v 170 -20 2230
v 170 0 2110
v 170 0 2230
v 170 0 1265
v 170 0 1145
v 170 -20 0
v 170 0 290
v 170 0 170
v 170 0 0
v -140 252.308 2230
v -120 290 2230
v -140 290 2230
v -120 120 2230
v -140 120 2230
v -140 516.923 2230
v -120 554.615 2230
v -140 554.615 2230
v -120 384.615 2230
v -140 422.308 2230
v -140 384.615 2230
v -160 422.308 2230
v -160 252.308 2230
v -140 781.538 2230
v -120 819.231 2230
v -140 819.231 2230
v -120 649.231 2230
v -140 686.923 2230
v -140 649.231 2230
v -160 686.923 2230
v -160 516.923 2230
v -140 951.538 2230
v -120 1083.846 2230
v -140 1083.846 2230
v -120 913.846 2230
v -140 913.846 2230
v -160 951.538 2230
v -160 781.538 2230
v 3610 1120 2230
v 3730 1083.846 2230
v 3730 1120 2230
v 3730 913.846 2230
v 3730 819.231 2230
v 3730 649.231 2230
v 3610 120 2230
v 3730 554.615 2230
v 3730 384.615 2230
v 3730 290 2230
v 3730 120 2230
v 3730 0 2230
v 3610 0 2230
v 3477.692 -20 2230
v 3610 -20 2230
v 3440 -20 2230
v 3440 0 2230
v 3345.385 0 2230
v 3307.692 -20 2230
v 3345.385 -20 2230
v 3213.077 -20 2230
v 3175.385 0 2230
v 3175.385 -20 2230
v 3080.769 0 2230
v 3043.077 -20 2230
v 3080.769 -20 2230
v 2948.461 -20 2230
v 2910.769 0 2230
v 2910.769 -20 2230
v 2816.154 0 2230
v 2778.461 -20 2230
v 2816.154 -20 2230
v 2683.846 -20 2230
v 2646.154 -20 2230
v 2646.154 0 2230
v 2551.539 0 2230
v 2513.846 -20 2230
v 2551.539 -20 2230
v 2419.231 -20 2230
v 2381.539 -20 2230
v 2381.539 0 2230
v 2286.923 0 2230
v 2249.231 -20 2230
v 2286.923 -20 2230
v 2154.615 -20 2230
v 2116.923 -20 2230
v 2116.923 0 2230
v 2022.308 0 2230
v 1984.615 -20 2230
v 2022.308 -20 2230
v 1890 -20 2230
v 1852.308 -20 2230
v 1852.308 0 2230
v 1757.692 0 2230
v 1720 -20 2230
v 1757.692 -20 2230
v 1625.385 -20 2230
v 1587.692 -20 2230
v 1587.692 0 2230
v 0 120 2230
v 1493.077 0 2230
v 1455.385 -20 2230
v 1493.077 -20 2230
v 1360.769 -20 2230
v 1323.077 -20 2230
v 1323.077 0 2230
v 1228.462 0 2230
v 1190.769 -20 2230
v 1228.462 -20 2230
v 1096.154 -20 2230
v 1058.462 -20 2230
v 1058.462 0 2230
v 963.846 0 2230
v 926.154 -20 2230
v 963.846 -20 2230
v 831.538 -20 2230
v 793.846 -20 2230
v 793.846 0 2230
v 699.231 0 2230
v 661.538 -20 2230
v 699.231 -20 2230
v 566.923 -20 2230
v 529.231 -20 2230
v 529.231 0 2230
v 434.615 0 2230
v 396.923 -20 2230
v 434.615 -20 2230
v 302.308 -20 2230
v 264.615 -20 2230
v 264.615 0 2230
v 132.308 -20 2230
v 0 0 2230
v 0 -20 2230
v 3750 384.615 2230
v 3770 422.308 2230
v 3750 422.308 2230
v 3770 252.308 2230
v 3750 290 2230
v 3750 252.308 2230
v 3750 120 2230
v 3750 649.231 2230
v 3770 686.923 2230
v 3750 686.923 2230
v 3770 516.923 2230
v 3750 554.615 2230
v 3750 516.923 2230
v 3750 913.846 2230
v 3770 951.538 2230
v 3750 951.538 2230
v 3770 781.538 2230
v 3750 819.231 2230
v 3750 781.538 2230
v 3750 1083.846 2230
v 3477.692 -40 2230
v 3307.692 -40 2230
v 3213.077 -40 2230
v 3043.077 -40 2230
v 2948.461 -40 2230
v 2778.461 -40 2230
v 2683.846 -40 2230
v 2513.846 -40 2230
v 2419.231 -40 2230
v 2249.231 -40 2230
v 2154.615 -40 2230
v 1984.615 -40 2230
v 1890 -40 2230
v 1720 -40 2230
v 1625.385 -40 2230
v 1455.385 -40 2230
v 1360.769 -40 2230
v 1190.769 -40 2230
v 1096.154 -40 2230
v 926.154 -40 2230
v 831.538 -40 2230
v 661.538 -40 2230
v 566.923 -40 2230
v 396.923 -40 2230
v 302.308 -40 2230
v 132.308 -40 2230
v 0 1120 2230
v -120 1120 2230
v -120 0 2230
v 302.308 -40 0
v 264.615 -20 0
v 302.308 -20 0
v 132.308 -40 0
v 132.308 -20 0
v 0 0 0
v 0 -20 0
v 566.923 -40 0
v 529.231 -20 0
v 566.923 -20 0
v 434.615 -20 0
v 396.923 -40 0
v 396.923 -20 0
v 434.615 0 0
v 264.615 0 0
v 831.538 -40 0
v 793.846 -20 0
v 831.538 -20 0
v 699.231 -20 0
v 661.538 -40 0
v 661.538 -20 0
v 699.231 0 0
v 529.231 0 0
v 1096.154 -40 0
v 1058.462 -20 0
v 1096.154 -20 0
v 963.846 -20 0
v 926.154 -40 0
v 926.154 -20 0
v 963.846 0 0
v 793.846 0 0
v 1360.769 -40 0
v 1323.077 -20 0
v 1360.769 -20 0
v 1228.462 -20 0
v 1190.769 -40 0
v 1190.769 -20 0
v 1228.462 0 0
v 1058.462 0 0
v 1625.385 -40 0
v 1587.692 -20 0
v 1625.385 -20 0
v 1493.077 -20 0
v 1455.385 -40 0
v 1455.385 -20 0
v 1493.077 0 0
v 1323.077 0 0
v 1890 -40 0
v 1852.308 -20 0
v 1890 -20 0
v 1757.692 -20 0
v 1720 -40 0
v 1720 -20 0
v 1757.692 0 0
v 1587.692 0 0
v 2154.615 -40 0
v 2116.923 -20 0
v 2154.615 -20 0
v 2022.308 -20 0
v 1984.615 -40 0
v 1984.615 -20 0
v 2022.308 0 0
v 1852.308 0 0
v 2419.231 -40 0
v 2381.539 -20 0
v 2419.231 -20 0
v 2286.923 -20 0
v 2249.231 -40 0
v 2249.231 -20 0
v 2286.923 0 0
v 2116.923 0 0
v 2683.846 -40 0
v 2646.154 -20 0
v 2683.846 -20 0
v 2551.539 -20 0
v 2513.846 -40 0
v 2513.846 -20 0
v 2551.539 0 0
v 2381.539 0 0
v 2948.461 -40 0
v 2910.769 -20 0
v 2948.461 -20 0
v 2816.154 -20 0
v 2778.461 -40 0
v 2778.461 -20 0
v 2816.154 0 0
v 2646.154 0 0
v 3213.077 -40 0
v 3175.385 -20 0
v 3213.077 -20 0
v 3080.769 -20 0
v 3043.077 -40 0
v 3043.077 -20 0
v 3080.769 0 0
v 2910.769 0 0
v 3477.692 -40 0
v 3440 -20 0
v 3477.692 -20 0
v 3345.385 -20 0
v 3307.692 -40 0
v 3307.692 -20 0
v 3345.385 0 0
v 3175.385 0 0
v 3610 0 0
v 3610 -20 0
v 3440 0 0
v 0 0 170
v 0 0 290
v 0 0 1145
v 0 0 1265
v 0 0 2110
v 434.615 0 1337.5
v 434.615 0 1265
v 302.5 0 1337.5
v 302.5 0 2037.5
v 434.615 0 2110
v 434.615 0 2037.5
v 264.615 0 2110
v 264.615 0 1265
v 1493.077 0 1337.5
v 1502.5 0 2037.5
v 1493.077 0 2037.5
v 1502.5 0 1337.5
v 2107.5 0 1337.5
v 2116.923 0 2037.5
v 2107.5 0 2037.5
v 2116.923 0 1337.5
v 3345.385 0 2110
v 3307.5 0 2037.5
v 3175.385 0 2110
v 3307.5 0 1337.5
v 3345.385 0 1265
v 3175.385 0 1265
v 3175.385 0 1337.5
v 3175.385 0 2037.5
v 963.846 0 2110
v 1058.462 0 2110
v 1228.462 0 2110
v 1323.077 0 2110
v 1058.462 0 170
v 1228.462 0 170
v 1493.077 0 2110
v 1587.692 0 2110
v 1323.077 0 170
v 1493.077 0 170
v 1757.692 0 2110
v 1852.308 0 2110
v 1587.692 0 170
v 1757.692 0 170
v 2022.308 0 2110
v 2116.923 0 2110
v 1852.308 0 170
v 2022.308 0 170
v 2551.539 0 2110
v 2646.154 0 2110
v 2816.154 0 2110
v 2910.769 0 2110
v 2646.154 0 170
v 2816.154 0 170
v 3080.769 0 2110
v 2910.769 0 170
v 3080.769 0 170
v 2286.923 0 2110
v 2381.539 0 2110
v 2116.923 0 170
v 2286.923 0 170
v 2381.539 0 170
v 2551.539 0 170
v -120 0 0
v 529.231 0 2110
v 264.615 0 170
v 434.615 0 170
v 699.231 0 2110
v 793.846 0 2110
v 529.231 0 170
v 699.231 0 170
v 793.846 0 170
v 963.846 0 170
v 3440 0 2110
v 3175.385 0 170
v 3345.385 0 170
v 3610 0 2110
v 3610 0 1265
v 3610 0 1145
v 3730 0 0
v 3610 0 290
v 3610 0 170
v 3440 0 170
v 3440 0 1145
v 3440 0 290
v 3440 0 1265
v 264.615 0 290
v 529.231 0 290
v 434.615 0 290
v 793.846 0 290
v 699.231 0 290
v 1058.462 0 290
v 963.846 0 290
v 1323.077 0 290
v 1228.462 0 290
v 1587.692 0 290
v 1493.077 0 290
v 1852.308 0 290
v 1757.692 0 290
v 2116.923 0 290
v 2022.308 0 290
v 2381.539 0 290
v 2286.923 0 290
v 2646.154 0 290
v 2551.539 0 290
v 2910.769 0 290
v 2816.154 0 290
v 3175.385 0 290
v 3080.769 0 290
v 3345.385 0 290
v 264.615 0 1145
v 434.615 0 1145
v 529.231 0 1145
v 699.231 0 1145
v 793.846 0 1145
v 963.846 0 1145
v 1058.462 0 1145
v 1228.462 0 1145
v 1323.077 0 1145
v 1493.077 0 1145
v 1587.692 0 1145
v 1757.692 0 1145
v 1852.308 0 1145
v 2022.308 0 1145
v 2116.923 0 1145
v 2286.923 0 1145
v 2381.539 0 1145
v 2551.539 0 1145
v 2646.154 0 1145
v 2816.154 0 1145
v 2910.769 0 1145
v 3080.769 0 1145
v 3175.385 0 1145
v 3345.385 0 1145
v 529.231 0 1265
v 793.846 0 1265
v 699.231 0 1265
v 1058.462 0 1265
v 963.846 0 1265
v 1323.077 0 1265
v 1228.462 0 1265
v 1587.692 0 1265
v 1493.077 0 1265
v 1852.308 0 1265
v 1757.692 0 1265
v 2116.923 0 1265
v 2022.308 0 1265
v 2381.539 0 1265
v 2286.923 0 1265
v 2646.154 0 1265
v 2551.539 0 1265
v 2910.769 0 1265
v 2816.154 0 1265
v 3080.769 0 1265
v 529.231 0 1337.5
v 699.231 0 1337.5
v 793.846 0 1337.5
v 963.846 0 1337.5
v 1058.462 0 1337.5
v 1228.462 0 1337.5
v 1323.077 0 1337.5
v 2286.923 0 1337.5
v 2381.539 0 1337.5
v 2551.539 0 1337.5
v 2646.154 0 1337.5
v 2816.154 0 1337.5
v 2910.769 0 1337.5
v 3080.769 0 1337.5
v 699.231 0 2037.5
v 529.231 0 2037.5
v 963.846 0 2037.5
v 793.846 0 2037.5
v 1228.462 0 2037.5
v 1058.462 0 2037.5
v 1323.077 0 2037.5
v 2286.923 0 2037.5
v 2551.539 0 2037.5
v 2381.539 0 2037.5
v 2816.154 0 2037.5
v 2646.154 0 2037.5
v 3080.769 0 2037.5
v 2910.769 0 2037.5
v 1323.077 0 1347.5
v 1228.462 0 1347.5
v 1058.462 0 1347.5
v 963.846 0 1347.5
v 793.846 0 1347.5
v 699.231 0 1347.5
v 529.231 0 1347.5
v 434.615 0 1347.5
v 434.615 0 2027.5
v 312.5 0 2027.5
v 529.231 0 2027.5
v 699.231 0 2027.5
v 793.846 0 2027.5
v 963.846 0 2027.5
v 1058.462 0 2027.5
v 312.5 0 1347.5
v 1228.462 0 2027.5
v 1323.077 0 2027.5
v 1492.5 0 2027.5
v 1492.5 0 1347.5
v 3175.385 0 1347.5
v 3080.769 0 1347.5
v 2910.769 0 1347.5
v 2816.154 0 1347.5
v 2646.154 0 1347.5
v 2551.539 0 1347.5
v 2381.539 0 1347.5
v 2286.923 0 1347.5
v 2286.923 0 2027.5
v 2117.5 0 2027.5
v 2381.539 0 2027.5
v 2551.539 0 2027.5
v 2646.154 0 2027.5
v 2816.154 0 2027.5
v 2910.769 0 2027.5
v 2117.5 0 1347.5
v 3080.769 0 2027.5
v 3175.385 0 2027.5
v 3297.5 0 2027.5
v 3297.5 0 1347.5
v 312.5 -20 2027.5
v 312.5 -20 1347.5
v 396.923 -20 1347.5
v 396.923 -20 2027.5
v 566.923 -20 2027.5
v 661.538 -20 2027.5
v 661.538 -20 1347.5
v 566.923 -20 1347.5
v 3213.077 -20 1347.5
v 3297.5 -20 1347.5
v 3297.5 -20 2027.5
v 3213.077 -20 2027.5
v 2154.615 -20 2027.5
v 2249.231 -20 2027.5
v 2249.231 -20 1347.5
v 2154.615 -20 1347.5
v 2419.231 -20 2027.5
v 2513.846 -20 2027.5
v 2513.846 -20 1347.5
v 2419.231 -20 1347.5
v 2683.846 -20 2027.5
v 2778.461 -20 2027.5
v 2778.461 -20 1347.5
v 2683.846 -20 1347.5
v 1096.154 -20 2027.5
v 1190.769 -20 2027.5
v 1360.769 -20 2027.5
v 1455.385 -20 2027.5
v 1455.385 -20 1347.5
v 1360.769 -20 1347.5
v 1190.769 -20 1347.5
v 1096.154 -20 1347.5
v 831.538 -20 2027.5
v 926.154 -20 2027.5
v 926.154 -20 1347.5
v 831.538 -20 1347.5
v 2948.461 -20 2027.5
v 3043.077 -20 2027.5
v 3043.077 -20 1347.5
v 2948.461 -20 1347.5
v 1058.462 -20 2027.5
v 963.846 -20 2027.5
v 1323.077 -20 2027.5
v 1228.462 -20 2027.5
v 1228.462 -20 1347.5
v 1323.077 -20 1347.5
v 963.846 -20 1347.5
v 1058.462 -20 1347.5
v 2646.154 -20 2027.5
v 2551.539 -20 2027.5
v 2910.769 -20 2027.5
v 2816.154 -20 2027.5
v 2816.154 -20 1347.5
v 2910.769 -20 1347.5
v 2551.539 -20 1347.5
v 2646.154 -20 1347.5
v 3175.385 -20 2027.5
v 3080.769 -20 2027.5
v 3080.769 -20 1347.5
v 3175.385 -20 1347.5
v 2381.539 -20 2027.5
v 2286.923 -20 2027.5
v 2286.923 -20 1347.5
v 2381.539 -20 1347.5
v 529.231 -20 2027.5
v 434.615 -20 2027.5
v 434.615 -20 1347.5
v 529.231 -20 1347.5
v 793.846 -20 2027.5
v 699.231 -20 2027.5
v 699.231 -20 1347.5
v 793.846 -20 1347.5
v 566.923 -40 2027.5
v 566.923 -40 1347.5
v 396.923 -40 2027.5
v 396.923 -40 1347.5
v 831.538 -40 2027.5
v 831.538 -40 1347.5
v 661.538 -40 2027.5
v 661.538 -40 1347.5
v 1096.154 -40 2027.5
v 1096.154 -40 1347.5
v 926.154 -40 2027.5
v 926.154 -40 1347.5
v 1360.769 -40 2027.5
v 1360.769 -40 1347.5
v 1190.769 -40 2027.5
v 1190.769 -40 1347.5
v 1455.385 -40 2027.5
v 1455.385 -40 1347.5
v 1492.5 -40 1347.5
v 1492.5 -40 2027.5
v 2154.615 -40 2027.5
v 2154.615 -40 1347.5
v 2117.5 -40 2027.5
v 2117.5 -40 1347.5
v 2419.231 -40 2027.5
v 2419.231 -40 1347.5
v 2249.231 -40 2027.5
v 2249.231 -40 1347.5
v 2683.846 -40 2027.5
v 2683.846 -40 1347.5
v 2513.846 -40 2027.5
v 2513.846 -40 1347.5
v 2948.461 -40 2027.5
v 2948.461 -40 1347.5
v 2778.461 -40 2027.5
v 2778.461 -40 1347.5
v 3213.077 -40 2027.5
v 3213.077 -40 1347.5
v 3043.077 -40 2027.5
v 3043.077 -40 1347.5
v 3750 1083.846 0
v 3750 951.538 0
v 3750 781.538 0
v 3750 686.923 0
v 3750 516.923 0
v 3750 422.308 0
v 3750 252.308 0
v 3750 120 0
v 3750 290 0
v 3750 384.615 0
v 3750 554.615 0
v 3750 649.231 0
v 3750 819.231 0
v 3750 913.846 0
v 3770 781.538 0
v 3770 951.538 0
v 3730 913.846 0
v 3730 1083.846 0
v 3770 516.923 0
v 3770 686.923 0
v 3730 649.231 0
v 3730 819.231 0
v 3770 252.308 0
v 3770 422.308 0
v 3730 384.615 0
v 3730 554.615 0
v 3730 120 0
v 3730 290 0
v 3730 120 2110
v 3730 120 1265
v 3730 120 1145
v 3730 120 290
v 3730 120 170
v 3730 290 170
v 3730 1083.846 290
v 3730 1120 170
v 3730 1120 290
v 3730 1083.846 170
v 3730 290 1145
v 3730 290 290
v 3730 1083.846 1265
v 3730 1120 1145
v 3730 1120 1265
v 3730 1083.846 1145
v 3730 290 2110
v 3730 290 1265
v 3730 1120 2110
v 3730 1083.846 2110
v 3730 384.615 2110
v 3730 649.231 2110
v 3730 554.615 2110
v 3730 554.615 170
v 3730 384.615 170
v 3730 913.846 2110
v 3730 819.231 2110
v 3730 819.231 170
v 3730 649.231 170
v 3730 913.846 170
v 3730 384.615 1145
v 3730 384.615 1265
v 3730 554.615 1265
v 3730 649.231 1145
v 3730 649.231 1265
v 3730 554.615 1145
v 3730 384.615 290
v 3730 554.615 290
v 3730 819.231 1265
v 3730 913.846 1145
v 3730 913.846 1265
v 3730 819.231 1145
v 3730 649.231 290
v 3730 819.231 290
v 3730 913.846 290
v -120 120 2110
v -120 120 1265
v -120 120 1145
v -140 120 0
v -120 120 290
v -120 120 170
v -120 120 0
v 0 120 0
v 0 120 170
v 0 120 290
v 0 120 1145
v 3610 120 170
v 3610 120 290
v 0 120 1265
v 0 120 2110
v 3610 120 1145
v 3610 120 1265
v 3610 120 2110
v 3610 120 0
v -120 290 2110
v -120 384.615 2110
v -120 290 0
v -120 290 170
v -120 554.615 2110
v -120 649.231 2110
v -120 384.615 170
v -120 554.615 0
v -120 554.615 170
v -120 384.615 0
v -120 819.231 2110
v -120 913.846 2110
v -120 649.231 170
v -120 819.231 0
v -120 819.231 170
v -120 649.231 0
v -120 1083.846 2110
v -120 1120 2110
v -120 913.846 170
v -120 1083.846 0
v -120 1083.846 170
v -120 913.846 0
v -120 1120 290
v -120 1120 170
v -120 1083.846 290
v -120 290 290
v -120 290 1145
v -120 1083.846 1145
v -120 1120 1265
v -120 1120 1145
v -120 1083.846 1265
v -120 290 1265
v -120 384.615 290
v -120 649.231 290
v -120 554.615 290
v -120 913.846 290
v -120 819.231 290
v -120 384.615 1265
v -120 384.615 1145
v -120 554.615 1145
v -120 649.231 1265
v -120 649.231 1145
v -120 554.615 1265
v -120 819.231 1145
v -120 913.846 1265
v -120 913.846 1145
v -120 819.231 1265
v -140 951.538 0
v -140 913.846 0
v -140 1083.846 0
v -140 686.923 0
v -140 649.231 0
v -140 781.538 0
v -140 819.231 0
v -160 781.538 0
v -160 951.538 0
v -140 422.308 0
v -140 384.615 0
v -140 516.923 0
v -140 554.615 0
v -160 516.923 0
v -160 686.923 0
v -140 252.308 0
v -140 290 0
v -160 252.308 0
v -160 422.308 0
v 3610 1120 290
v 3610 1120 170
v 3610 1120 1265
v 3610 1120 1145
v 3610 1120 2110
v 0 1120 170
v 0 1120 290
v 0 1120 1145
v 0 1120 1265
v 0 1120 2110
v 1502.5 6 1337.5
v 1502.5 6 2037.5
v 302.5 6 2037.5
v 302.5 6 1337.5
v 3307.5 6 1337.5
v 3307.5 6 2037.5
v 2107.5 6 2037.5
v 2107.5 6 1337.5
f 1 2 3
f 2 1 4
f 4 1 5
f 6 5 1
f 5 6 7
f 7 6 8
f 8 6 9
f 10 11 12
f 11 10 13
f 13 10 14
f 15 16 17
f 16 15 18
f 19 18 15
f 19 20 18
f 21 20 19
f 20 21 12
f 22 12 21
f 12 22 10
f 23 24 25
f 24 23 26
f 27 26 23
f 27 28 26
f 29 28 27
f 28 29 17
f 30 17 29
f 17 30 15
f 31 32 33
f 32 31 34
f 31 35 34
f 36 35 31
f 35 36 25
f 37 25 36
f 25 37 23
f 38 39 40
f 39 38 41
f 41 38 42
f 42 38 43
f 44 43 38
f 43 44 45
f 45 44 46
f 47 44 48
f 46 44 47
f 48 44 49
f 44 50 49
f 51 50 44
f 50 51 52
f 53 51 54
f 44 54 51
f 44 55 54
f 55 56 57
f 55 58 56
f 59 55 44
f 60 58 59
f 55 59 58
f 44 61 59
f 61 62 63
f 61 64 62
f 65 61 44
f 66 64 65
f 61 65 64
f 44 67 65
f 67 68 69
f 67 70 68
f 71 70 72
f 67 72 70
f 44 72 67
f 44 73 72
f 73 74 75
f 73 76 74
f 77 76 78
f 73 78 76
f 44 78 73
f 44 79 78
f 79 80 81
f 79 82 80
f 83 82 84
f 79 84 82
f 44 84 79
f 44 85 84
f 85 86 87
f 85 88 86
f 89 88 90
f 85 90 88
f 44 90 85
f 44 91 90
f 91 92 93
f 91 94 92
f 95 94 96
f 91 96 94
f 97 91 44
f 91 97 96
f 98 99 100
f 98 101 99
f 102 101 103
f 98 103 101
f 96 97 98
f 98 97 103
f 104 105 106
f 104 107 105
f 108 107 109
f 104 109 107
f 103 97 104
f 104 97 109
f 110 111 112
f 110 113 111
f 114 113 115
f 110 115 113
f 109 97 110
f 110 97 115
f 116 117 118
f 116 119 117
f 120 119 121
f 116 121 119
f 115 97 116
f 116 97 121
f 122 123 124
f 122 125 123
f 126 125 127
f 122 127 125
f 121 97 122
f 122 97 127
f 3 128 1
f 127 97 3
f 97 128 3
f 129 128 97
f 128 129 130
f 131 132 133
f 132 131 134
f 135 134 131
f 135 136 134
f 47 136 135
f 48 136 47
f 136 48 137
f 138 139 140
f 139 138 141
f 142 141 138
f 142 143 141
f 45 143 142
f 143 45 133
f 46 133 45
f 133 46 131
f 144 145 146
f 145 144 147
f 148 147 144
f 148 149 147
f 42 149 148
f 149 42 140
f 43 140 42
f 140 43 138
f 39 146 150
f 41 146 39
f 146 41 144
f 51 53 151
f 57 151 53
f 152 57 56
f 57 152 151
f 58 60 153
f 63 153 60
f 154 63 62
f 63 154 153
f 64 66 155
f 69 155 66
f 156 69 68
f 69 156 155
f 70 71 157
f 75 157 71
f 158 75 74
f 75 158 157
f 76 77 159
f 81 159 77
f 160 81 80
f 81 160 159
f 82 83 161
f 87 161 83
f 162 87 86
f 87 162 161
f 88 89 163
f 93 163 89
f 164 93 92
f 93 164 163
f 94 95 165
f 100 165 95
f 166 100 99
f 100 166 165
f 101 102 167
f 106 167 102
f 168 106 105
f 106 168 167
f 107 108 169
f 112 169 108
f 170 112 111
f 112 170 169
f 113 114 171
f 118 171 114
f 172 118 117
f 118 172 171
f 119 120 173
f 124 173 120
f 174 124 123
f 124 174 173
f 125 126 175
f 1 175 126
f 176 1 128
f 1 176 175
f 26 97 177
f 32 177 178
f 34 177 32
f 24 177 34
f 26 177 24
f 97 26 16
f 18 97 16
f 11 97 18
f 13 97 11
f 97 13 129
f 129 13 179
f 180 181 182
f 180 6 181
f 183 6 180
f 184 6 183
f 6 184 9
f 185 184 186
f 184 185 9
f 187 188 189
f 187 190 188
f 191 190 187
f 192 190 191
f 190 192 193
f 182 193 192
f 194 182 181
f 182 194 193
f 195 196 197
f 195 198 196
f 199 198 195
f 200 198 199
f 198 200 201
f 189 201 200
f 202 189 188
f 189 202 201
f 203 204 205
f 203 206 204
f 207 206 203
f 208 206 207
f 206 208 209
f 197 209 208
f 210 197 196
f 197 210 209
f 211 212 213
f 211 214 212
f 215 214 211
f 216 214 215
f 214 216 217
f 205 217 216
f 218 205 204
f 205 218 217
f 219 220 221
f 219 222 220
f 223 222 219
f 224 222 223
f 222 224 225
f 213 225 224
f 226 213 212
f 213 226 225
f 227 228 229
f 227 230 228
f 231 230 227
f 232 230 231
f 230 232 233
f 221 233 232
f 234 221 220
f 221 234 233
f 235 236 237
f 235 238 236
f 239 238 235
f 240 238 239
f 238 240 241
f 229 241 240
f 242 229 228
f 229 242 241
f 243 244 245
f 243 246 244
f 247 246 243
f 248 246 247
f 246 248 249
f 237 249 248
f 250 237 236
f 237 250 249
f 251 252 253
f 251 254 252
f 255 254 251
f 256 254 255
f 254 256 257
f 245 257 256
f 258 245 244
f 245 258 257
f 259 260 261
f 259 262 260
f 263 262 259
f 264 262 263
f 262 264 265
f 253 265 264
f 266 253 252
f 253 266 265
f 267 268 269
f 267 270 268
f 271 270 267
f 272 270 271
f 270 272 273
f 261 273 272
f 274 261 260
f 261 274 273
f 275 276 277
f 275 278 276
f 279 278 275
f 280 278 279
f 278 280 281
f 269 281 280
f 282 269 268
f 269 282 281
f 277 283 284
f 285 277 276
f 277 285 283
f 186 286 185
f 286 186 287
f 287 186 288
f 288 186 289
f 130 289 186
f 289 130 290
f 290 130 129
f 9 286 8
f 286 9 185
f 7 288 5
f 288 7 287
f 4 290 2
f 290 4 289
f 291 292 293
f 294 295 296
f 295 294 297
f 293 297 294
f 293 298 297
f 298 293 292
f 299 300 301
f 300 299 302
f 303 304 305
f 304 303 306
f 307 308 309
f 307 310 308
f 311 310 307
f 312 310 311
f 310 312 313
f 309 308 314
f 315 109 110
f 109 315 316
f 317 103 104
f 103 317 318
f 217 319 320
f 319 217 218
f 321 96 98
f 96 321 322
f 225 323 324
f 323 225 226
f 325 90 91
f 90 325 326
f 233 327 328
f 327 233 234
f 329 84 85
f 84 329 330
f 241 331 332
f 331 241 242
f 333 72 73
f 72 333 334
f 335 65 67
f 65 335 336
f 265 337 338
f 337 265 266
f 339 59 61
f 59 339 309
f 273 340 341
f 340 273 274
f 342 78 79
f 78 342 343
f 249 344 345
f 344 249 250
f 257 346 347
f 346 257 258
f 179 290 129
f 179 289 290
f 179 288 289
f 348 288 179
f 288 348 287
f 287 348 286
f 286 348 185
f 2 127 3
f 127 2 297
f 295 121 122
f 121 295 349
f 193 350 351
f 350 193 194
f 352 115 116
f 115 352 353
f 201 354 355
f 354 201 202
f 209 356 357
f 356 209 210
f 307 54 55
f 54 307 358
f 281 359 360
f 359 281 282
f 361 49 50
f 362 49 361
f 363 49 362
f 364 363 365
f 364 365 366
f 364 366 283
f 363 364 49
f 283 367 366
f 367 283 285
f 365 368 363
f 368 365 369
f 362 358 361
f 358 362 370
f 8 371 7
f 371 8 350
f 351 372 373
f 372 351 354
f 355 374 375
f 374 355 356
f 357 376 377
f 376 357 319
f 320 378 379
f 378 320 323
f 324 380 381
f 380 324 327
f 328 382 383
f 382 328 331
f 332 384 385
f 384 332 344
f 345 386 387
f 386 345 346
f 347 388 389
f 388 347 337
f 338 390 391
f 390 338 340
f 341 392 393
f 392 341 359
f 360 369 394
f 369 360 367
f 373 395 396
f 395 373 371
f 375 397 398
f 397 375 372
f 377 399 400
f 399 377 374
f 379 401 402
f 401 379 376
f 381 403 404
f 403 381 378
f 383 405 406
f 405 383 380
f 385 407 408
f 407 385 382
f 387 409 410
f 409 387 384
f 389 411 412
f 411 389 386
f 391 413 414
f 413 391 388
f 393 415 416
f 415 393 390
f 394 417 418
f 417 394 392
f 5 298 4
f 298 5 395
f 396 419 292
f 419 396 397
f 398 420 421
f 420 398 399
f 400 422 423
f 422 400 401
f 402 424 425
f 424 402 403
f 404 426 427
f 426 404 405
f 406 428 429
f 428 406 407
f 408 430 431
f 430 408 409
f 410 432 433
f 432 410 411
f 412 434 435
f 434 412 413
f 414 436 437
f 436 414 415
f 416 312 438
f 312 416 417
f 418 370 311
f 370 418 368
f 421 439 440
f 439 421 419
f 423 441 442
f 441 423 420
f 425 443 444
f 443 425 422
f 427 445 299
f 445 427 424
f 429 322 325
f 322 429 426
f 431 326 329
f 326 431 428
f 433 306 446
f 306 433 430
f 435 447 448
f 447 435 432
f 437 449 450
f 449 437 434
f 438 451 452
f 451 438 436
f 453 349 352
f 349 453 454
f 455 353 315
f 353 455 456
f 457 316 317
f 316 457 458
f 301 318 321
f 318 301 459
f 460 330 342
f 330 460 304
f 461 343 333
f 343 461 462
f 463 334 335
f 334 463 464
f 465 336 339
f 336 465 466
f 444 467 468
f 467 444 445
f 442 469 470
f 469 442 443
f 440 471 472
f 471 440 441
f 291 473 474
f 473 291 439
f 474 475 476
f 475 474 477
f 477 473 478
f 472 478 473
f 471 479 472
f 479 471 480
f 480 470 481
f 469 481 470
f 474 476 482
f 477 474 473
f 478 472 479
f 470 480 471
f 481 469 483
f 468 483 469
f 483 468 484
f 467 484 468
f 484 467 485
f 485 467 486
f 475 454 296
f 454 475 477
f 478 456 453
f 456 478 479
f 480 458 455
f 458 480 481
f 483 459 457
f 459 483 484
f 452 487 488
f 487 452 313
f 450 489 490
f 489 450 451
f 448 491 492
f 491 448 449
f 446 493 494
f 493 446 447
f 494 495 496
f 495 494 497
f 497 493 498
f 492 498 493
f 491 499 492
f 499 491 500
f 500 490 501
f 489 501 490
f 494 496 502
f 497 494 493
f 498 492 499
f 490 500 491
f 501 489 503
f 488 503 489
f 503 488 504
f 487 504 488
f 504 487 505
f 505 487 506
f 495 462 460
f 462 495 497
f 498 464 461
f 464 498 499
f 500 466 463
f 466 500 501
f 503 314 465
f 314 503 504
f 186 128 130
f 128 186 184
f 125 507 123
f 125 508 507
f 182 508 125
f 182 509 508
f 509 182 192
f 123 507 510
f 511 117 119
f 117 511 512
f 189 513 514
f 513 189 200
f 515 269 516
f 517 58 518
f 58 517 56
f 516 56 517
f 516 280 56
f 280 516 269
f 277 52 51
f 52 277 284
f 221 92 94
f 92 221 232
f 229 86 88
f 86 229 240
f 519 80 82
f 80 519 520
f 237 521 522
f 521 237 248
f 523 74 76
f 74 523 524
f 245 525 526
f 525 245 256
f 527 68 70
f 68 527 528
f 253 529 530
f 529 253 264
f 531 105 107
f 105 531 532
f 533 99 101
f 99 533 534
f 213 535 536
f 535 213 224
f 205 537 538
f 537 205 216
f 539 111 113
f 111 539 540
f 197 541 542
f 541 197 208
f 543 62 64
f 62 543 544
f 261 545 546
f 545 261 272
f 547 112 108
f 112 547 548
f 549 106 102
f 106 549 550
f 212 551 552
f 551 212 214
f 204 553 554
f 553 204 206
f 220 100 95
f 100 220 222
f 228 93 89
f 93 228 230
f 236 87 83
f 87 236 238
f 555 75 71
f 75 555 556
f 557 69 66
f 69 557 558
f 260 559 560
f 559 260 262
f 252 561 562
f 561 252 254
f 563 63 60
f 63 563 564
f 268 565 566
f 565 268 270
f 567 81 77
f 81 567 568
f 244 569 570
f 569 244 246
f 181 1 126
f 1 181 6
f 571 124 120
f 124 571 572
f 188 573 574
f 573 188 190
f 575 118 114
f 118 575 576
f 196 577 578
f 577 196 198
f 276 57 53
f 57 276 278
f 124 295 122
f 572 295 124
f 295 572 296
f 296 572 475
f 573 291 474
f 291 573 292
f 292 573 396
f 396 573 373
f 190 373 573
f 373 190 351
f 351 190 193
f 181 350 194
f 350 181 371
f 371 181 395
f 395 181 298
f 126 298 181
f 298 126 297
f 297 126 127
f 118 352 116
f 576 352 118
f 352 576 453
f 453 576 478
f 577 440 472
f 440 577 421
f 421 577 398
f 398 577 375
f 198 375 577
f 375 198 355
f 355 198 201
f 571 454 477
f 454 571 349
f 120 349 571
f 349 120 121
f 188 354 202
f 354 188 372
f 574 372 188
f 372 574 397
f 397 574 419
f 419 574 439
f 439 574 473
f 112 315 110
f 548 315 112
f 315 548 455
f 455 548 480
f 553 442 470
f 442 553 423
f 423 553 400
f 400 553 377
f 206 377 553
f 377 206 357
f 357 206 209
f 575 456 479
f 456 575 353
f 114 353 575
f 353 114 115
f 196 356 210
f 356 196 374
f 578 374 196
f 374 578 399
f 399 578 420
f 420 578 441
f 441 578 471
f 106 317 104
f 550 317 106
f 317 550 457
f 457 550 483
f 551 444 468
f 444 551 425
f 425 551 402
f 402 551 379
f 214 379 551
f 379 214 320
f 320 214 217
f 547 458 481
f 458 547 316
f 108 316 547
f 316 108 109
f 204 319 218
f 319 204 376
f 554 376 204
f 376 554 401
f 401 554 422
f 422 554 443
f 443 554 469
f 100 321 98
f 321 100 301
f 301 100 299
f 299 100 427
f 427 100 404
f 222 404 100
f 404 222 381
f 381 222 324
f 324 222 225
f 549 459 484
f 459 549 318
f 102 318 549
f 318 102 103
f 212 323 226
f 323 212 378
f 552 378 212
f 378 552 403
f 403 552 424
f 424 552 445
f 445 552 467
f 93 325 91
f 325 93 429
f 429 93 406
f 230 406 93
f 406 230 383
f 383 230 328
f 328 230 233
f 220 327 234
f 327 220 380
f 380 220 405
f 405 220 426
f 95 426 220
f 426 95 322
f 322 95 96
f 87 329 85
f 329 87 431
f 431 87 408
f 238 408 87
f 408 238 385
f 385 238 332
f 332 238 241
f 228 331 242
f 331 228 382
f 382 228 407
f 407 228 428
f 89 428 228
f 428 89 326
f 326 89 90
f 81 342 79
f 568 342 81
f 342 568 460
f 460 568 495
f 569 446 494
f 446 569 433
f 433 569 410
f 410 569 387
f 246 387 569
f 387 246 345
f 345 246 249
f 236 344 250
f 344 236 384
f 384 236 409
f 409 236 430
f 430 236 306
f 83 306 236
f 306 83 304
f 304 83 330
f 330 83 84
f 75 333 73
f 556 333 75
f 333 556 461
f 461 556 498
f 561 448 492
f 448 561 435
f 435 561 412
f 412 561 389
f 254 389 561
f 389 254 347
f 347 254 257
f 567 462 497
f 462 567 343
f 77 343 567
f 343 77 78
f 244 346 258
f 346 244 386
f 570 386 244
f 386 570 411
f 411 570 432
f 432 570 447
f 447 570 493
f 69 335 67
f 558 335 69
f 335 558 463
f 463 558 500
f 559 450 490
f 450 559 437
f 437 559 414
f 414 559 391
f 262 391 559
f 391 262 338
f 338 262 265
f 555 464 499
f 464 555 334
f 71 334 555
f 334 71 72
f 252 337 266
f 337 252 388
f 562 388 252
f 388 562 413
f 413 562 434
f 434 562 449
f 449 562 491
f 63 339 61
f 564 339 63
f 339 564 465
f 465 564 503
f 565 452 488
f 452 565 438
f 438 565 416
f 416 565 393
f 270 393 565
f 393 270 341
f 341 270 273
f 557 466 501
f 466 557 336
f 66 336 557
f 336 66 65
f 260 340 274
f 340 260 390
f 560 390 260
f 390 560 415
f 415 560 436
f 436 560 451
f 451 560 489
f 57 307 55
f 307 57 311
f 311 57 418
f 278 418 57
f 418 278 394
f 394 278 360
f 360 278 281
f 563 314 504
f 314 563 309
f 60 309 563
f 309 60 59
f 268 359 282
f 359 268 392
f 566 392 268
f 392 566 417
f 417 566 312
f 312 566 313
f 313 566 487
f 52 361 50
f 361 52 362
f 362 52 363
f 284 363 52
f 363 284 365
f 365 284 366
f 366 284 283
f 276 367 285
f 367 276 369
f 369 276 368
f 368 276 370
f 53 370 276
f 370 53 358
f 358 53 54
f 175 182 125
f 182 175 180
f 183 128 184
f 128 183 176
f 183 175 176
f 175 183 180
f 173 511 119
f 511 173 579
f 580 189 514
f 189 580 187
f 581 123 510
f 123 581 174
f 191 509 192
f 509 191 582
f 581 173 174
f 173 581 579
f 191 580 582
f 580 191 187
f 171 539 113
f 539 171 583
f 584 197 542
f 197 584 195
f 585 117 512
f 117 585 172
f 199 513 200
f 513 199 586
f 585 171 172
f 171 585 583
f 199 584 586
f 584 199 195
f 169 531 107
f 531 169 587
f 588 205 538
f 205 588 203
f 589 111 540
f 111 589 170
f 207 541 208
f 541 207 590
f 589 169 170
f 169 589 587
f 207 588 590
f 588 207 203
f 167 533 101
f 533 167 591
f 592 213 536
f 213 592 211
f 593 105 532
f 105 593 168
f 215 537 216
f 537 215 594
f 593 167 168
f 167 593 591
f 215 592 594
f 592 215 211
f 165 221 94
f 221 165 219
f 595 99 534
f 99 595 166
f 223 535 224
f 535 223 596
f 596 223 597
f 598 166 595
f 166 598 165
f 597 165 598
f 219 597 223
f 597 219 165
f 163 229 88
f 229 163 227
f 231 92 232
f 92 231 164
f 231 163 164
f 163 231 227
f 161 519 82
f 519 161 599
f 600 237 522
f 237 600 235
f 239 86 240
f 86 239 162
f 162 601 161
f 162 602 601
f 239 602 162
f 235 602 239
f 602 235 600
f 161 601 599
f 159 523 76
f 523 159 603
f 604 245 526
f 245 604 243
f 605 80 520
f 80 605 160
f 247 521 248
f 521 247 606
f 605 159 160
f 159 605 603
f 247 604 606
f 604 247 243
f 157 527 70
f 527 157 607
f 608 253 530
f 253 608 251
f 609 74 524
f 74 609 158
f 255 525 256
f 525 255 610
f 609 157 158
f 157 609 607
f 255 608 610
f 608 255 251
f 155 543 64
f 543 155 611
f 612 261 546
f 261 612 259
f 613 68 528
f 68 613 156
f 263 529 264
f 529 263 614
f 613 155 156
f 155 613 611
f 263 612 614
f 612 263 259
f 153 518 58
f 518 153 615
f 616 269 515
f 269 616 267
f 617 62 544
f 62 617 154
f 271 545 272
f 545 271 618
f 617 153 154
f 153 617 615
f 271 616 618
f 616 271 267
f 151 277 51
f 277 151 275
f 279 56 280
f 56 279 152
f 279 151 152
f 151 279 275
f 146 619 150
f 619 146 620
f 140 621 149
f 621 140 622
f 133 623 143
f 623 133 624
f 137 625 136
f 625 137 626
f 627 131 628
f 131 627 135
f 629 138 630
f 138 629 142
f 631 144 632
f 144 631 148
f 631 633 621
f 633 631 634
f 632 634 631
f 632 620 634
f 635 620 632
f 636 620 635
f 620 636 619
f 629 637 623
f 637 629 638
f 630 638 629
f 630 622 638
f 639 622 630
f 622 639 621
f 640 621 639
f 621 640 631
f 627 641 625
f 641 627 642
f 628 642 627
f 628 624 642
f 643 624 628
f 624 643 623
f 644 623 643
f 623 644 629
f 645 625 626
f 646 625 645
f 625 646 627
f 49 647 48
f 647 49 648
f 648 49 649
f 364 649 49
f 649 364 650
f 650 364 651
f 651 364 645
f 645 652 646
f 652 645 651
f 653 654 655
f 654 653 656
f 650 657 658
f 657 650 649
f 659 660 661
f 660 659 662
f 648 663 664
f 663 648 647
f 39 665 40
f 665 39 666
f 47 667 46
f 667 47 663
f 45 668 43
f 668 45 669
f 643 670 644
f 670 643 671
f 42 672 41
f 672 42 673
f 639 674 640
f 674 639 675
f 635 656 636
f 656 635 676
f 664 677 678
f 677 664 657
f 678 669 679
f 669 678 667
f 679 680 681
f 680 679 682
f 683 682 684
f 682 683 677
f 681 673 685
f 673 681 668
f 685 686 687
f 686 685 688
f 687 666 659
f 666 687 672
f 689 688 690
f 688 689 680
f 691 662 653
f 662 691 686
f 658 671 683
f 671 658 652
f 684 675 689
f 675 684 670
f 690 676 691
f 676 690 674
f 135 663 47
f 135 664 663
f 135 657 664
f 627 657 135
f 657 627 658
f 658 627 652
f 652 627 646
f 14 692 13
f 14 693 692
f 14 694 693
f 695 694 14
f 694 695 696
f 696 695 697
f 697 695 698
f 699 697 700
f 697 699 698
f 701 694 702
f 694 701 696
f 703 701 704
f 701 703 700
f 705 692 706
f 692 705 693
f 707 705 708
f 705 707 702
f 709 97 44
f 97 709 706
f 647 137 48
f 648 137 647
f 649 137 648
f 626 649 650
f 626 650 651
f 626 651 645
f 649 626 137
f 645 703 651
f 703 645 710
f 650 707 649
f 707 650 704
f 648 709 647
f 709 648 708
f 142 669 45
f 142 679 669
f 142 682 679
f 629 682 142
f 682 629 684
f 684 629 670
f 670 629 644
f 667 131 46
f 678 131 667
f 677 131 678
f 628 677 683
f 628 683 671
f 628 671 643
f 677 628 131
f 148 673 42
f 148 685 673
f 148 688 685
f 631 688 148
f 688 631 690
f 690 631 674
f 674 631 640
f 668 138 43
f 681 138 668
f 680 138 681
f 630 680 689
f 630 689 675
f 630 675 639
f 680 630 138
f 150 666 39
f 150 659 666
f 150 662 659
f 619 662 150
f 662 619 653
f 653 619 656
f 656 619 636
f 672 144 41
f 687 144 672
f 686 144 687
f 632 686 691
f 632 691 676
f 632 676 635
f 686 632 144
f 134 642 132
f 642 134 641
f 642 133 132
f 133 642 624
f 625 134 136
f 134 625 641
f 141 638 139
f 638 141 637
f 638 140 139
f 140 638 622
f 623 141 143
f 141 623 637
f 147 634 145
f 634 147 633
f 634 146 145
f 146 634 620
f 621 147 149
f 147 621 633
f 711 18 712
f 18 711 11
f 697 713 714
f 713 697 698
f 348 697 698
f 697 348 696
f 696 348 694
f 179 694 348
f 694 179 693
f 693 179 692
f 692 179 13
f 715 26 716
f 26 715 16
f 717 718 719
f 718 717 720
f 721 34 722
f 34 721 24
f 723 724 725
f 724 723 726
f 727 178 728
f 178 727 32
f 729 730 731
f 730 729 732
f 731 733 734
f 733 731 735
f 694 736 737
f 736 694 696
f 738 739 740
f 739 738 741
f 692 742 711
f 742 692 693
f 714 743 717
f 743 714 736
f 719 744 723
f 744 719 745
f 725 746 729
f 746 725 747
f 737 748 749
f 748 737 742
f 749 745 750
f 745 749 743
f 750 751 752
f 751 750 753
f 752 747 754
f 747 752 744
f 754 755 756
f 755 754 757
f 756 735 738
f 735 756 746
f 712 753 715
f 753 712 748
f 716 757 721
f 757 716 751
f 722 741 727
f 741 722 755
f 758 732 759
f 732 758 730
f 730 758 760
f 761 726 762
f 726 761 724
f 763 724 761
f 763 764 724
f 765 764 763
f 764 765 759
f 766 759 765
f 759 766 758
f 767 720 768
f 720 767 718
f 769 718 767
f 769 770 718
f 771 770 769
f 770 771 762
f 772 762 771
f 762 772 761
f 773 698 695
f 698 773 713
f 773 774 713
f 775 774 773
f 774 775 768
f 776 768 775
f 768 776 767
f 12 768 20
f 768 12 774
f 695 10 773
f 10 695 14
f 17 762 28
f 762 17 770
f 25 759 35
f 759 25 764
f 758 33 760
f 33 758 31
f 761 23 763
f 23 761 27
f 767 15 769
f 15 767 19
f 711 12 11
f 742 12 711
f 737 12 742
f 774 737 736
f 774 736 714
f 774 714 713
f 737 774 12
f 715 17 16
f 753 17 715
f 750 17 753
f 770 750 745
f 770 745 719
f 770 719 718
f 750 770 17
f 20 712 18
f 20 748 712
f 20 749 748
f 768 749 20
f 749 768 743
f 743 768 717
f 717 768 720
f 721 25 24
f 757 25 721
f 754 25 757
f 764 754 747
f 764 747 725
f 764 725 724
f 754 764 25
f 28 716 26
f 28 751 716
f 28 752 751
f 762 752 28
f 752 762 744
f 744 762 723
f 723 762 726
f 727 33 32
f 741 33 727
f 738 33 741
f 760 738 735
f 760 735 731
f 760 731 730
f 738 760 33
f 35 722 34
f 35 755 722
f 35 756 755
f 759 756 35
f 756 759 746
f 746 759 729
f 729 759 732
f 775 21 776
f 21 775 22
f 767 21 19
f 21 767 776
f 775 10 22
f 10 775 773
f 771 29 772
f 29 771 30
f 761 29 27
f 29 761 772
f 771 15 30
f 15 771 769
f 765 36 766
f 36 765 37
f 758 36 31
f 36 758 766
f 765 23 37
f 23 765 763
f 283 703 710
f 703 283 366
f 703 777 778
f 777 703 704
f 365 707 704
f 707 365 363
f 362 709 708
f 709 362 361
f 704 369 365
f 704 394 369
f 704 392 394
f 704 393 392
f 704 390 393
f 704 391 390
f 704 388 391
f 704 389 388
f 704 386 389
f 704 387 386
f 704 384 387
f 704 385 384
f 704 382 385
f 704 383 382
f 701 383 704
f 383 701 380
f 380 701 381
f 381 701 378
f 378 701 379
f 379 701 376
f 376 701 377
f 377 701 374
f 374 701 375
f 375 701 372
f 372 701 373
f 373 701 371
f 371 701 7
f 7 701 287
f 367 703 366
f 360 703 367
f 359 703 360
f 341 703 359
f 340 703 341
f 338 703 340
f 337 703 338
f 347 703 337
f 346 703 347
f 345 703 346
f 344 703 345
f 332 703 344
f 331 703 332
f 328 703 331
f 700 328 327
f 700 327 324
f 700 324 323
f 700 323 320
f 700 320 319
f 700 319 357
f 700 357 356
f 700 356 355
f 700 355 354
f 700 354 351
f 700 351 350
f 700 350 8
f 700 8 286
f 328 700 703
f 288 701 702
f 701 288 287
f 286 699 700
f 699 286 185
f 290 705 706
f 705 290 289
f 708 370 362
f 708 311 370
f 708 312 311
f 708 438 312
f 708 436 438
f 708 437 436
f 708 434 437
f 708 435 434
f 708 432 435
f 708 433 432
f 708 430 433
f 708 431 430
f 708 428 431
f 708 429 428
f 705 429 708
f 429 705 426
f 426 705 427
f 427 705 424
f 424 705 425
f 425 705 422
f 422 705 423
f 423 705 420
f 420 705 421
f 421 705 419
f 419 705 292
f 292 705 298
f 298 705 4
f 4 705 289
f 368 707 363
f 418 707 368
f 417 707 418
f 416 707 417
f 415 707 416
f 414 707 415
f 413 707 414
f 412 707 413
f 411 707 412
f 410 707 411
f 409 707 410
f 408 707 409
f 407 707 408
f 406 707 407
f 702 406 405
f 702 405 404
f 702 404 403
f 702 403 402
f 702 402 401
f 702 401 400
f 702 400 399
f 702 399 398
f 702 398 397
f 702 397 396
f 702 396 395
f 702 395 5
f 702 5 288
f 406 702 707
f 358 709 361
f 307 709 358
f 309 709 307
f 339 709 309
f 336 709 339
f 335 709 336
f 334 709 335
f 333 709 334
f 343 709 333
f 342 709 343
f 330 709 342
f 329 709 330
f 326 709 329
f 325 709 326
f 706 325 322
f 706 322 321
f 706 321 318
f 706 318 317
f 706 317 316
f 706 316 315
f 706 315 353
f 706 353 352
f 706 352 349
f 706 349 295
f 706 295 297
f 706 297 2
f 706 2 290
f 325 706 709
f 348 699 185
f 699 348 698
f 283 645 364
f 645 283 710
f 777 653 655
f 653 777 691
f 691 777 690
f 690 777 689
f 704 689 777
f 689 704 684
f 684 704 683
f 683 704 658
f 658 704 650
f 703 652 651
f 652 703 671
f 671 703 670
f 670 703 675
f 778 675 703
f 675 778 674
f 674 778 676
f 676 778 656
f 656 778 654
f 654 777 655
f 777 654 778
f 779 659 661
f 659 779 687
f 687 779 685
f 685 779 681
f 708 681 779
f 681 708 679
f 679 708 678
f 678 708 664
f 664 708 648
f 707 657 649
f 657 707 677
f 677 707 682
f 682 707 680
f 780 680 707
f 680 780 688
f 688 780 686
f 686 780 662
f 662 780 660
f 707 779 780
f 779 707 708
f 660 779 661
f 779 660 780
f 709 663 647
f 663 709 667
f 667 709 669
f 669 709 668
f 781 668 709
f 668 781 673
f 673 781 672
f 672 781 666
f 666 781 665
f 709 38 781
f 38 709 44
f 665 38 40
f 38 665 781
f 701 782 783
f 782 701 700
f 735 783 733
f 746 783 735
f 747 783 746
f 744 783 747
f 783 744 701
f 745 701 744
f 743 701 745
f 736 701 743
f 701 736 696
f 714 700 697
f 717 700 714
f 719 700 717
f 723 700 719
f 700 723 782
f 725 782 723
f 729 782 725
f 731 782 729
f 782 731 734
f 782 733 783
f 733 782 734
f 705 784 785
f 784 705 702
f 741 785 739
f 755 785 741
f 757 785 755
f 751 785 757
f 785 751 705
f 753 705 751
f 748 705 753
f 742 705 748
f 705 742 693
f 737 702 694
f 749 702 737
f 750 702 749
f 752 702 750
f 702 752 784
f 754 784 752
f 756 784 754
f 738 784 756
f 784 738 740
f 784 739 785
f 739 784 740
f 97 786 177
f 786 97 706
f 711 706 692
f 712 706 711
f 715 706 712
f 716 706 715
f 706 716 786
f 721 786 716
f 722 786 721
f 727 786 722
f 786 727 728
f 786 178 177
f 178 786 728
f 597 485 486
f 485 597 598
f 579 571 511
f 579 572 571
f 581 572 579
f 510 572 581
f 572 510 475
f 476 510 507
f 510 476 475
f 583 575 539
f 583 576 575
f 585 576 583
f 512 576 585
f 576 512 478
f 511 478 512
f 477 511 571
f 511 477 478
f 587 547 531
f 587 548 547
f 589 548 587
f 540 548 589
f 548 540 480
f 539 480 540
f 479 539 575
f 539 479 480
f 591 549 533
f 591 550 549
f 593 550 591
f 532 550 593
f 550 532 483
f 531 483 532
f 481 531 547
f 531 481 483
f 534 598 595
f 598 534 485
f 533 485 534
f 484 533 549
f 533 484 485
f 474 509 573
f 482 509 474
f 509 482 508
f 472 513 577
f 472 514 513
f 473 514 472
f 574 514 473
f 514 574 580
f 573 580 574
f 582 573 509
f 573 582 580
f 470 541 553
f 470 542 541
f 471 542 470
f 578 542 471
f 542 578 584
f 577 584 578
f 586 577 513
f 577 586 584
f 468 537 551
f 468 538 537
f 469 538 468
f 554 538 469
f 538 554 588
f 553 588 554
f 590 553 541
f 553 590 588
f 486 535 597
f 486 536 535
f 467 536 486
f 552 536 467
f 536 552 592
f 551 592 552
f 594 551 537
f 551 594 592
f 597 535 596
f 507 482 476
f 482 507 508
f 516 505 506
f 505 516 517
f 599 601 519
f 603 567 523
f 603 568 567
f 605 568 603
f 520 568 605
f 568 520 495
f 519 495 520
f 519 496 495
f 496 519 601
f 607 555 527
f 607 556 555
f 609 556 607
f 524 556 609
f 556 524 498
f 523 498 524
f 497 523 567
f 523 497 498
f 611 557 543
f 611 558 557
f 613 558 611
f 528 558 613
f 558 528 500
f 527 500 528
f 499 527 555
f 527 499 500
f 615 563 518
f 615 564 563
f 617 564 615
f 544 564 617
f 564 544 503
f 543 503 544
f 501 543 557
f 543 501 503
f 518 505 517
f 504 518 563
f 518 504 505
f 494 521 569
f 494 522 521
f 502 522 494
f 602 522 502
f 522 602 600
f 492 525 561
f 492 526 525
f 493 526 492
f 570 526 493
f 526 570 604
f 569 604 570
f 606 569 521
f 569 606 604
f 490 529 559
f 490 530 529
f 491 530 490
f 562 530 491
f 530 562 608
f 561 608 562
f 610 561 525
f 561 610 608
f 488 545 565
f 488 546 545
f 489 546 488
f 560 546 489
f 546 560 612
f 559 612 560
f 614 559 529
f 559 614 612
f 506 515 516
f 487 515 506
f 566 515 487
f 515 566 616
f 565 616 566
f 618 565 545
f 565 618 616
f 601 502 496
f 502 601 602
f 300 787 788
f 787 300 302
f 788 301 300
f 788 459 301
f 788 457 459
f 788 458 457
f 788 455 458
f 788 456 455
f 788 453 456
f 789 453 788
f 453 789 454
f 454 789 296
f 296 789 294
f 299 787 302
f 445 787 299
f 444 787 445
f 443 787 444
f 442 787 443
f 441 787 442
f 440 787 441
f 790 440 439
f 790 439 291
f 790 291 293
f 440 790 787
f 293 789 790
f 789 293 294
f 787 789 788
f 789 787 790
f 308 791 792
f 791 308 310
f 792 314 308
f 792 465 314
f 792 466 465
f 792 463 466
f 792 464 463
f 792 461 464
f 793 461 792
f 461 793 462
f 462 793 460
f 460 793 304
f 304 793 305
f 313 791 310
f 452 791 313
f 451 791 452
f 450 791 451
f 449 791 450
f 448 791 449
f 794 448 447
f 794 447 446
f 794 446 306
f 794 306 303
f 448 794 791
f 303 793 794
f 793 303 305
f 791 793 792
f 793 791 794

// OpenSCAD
laenge_balken=3610;
dicke_balken=120;
hoehe_unterkante_balken1=170;
hoehe_unterkante_balken2=1145;
hoehe_unterkante_balken3=2110;
dicke_brett=20;
breite_brett=170;
hoehe_brett=hoehe_unterkante_balken3+dicke_balken;
anzahl_bretter=14;
breite_ansatz=1000;
anzahl_bretter_ansatz=4;
brett_mittenabstand = (laenge_balken-breite_brett)/(anzahl_bretter-1);
versatz_aussenbrett=brett_mittenabstand- (brett_mittenabstand-breite_brett)/2 - breite_brett/2;

breite_fenster=1200;
hoehe_fenster=700;
dicke_glas=6;
ueberstand_glas = 10;
mitte_x_fenster_1=laenge_balken/4;
mitte_x_fenster_2=laenge_balken/4*3;
mitte_y_fenster=(hoehe_unterkante_balken2 + dicke_balken + hoehe_unterkante_balken3)/2;



module wand(){
    // Wand frontal
    translate([0,0,hoehe_unterkante_balken1]){cube([laenge_balken, dicke_balken, dicke_balken]);}
    translate([0,0,hoehe_unterkante_balken2]){cube([laenge_balken, dicke_balken, dicke_balken]);}
    translate([0,0,hoehe_unterkante_balken3]){cube([laenge_balken, dicke_balken, dicke_balken]);}
    translate([-dicke_balken,0,0]){cube([dicke_balken, dicke_balken, hoehe_unterkante_balken3+dicke_balken]);}
    translate([laenge_balken,0,0]){cube([dicke_balken, dicke_balken, hoehe_unterkante_balken3+dicke_balken]);}

    for (i = [0 : anzahl_bretter-1]) {
        translate([brett_mittenabstand * i, -dicke_brett ,0]) { 
            cube([breite_brett, dicke_brett, hoehe_brett]); 
            }
        }
    for (i = [0 : anzahl_bretter-2]) {
        translate([brett_mittenabstand * i + versatz_aussenbrett, -dicke_brett*2 ,0]) { 
            cube([breite_brett, dicke_brett, hoehe_brett]); 
            }
        }

    //Wand links
    translate([laenge_balken,dicke_balken,hoehe_unterkante_balken1]){cube([dicke_balken, breite_ansatz, dicke_balken]);}
    translate([laenge_balken,dicke_balken,hoehe_unterkante_balken2]){cube([dicke_balken, breite_ansatz, dicke_balken]);}
    translate([laenge_balken,dicke_balken,hoehe_unterkante_balken3]){cube([dicke_balken, breite_ansatz, dicke_balken]);}

    for (i = [0 : anzahl_bretter_ansatz-1]) {
        translate([laenge_balken+dicke_balken, brett_mittenabstand * i+dicke_balken ,0]) { 
            cube([dicke_brett, breite_brett, hoehe_brett]); 
            }
        }
    for (i = [0 : anzahl_bretter_ansatz-2]) {
        translate([laenge_balken+dicke_balken+dicke_brett, brett_mittenabstand * i + dicke_balken + versatz_aussenbrett, 0]) { 
            cube([dicke_brett, breite_brett, hoehe_brett]); 
            }
        }

    // wand rechts
    translate([-dicke_balken,dicke_balken,hoehe_unterkante_balken1]){cube([dicke_balken, breite_ansatz, dicke_balken]);}
    translate([-dicke_balken,dicke_balken,hoehe_unterkante_balken2]){cube([dicke_balken, breite_ansatz, dicke_balken]);}
    translate([-dicke_balken,dicke_balken,hoehe_unterkante_balken3]){cube([dicke_balken, breite_ansatz, dicke_balken]);}

    for (i = [0 : anzahl_bretter_ansatz-1]) {
        translate([-dicke_brett-dicke_balken, brett_mittenabstand * i+dicke_balken ,0]) { 
            cube([dicke_brett, breite_brett, hoehe_brett]); 
            }
        }
    for (i = [0 : anzahl_bretter_ansatz-2]) {
        translate([-dicke_brett*2-dicke_balken, brett_mittenabstand * i + dicke_balken + versatz_aussenbrett, 0]) { 
            cube([dicke_brett, breite_brett, hoehe_brett]); 
            }
        }
    }
    
    
module fenster_loch(mitte_x, mitte_y){
    translate([mitte_x-breite_fenster/2+ueberstand_glas, -dicke_brett*2-10, mitte_y-hoehe_fenster/2+ueberstand_glas]) { 
        cube([breite_fenster-ueberstand_glas*2, dicke_brett*2+20, hoehe_fenster-ueberstand_glas*2]); }    
    }   
   
module fenster_glas(mitte_x, mitte_y){
    translate([mitte_x-breite_fenster/2, 0, mitte_y-hoehe_fenster/2]) { 
        color([0.5,0.5,0.5,0.4]) { 
            cube([breite_fenster, dicke_glas, hoehe_fenster]); 
            }
        }
    }    

difference(){
    wand();
    union(){
        fenster_loch(mitte_x_fenster_1, mitte_y_fenster);
        fenster_loch(mitte_x_fenster_2, mitte_y_fenster);
        }
    }
fenster_glas(mitte_x_fenster_1, mitte_y_fenster);
fenster_glas(mitte_x_fenster_2, mitte_y_fenster);
    
